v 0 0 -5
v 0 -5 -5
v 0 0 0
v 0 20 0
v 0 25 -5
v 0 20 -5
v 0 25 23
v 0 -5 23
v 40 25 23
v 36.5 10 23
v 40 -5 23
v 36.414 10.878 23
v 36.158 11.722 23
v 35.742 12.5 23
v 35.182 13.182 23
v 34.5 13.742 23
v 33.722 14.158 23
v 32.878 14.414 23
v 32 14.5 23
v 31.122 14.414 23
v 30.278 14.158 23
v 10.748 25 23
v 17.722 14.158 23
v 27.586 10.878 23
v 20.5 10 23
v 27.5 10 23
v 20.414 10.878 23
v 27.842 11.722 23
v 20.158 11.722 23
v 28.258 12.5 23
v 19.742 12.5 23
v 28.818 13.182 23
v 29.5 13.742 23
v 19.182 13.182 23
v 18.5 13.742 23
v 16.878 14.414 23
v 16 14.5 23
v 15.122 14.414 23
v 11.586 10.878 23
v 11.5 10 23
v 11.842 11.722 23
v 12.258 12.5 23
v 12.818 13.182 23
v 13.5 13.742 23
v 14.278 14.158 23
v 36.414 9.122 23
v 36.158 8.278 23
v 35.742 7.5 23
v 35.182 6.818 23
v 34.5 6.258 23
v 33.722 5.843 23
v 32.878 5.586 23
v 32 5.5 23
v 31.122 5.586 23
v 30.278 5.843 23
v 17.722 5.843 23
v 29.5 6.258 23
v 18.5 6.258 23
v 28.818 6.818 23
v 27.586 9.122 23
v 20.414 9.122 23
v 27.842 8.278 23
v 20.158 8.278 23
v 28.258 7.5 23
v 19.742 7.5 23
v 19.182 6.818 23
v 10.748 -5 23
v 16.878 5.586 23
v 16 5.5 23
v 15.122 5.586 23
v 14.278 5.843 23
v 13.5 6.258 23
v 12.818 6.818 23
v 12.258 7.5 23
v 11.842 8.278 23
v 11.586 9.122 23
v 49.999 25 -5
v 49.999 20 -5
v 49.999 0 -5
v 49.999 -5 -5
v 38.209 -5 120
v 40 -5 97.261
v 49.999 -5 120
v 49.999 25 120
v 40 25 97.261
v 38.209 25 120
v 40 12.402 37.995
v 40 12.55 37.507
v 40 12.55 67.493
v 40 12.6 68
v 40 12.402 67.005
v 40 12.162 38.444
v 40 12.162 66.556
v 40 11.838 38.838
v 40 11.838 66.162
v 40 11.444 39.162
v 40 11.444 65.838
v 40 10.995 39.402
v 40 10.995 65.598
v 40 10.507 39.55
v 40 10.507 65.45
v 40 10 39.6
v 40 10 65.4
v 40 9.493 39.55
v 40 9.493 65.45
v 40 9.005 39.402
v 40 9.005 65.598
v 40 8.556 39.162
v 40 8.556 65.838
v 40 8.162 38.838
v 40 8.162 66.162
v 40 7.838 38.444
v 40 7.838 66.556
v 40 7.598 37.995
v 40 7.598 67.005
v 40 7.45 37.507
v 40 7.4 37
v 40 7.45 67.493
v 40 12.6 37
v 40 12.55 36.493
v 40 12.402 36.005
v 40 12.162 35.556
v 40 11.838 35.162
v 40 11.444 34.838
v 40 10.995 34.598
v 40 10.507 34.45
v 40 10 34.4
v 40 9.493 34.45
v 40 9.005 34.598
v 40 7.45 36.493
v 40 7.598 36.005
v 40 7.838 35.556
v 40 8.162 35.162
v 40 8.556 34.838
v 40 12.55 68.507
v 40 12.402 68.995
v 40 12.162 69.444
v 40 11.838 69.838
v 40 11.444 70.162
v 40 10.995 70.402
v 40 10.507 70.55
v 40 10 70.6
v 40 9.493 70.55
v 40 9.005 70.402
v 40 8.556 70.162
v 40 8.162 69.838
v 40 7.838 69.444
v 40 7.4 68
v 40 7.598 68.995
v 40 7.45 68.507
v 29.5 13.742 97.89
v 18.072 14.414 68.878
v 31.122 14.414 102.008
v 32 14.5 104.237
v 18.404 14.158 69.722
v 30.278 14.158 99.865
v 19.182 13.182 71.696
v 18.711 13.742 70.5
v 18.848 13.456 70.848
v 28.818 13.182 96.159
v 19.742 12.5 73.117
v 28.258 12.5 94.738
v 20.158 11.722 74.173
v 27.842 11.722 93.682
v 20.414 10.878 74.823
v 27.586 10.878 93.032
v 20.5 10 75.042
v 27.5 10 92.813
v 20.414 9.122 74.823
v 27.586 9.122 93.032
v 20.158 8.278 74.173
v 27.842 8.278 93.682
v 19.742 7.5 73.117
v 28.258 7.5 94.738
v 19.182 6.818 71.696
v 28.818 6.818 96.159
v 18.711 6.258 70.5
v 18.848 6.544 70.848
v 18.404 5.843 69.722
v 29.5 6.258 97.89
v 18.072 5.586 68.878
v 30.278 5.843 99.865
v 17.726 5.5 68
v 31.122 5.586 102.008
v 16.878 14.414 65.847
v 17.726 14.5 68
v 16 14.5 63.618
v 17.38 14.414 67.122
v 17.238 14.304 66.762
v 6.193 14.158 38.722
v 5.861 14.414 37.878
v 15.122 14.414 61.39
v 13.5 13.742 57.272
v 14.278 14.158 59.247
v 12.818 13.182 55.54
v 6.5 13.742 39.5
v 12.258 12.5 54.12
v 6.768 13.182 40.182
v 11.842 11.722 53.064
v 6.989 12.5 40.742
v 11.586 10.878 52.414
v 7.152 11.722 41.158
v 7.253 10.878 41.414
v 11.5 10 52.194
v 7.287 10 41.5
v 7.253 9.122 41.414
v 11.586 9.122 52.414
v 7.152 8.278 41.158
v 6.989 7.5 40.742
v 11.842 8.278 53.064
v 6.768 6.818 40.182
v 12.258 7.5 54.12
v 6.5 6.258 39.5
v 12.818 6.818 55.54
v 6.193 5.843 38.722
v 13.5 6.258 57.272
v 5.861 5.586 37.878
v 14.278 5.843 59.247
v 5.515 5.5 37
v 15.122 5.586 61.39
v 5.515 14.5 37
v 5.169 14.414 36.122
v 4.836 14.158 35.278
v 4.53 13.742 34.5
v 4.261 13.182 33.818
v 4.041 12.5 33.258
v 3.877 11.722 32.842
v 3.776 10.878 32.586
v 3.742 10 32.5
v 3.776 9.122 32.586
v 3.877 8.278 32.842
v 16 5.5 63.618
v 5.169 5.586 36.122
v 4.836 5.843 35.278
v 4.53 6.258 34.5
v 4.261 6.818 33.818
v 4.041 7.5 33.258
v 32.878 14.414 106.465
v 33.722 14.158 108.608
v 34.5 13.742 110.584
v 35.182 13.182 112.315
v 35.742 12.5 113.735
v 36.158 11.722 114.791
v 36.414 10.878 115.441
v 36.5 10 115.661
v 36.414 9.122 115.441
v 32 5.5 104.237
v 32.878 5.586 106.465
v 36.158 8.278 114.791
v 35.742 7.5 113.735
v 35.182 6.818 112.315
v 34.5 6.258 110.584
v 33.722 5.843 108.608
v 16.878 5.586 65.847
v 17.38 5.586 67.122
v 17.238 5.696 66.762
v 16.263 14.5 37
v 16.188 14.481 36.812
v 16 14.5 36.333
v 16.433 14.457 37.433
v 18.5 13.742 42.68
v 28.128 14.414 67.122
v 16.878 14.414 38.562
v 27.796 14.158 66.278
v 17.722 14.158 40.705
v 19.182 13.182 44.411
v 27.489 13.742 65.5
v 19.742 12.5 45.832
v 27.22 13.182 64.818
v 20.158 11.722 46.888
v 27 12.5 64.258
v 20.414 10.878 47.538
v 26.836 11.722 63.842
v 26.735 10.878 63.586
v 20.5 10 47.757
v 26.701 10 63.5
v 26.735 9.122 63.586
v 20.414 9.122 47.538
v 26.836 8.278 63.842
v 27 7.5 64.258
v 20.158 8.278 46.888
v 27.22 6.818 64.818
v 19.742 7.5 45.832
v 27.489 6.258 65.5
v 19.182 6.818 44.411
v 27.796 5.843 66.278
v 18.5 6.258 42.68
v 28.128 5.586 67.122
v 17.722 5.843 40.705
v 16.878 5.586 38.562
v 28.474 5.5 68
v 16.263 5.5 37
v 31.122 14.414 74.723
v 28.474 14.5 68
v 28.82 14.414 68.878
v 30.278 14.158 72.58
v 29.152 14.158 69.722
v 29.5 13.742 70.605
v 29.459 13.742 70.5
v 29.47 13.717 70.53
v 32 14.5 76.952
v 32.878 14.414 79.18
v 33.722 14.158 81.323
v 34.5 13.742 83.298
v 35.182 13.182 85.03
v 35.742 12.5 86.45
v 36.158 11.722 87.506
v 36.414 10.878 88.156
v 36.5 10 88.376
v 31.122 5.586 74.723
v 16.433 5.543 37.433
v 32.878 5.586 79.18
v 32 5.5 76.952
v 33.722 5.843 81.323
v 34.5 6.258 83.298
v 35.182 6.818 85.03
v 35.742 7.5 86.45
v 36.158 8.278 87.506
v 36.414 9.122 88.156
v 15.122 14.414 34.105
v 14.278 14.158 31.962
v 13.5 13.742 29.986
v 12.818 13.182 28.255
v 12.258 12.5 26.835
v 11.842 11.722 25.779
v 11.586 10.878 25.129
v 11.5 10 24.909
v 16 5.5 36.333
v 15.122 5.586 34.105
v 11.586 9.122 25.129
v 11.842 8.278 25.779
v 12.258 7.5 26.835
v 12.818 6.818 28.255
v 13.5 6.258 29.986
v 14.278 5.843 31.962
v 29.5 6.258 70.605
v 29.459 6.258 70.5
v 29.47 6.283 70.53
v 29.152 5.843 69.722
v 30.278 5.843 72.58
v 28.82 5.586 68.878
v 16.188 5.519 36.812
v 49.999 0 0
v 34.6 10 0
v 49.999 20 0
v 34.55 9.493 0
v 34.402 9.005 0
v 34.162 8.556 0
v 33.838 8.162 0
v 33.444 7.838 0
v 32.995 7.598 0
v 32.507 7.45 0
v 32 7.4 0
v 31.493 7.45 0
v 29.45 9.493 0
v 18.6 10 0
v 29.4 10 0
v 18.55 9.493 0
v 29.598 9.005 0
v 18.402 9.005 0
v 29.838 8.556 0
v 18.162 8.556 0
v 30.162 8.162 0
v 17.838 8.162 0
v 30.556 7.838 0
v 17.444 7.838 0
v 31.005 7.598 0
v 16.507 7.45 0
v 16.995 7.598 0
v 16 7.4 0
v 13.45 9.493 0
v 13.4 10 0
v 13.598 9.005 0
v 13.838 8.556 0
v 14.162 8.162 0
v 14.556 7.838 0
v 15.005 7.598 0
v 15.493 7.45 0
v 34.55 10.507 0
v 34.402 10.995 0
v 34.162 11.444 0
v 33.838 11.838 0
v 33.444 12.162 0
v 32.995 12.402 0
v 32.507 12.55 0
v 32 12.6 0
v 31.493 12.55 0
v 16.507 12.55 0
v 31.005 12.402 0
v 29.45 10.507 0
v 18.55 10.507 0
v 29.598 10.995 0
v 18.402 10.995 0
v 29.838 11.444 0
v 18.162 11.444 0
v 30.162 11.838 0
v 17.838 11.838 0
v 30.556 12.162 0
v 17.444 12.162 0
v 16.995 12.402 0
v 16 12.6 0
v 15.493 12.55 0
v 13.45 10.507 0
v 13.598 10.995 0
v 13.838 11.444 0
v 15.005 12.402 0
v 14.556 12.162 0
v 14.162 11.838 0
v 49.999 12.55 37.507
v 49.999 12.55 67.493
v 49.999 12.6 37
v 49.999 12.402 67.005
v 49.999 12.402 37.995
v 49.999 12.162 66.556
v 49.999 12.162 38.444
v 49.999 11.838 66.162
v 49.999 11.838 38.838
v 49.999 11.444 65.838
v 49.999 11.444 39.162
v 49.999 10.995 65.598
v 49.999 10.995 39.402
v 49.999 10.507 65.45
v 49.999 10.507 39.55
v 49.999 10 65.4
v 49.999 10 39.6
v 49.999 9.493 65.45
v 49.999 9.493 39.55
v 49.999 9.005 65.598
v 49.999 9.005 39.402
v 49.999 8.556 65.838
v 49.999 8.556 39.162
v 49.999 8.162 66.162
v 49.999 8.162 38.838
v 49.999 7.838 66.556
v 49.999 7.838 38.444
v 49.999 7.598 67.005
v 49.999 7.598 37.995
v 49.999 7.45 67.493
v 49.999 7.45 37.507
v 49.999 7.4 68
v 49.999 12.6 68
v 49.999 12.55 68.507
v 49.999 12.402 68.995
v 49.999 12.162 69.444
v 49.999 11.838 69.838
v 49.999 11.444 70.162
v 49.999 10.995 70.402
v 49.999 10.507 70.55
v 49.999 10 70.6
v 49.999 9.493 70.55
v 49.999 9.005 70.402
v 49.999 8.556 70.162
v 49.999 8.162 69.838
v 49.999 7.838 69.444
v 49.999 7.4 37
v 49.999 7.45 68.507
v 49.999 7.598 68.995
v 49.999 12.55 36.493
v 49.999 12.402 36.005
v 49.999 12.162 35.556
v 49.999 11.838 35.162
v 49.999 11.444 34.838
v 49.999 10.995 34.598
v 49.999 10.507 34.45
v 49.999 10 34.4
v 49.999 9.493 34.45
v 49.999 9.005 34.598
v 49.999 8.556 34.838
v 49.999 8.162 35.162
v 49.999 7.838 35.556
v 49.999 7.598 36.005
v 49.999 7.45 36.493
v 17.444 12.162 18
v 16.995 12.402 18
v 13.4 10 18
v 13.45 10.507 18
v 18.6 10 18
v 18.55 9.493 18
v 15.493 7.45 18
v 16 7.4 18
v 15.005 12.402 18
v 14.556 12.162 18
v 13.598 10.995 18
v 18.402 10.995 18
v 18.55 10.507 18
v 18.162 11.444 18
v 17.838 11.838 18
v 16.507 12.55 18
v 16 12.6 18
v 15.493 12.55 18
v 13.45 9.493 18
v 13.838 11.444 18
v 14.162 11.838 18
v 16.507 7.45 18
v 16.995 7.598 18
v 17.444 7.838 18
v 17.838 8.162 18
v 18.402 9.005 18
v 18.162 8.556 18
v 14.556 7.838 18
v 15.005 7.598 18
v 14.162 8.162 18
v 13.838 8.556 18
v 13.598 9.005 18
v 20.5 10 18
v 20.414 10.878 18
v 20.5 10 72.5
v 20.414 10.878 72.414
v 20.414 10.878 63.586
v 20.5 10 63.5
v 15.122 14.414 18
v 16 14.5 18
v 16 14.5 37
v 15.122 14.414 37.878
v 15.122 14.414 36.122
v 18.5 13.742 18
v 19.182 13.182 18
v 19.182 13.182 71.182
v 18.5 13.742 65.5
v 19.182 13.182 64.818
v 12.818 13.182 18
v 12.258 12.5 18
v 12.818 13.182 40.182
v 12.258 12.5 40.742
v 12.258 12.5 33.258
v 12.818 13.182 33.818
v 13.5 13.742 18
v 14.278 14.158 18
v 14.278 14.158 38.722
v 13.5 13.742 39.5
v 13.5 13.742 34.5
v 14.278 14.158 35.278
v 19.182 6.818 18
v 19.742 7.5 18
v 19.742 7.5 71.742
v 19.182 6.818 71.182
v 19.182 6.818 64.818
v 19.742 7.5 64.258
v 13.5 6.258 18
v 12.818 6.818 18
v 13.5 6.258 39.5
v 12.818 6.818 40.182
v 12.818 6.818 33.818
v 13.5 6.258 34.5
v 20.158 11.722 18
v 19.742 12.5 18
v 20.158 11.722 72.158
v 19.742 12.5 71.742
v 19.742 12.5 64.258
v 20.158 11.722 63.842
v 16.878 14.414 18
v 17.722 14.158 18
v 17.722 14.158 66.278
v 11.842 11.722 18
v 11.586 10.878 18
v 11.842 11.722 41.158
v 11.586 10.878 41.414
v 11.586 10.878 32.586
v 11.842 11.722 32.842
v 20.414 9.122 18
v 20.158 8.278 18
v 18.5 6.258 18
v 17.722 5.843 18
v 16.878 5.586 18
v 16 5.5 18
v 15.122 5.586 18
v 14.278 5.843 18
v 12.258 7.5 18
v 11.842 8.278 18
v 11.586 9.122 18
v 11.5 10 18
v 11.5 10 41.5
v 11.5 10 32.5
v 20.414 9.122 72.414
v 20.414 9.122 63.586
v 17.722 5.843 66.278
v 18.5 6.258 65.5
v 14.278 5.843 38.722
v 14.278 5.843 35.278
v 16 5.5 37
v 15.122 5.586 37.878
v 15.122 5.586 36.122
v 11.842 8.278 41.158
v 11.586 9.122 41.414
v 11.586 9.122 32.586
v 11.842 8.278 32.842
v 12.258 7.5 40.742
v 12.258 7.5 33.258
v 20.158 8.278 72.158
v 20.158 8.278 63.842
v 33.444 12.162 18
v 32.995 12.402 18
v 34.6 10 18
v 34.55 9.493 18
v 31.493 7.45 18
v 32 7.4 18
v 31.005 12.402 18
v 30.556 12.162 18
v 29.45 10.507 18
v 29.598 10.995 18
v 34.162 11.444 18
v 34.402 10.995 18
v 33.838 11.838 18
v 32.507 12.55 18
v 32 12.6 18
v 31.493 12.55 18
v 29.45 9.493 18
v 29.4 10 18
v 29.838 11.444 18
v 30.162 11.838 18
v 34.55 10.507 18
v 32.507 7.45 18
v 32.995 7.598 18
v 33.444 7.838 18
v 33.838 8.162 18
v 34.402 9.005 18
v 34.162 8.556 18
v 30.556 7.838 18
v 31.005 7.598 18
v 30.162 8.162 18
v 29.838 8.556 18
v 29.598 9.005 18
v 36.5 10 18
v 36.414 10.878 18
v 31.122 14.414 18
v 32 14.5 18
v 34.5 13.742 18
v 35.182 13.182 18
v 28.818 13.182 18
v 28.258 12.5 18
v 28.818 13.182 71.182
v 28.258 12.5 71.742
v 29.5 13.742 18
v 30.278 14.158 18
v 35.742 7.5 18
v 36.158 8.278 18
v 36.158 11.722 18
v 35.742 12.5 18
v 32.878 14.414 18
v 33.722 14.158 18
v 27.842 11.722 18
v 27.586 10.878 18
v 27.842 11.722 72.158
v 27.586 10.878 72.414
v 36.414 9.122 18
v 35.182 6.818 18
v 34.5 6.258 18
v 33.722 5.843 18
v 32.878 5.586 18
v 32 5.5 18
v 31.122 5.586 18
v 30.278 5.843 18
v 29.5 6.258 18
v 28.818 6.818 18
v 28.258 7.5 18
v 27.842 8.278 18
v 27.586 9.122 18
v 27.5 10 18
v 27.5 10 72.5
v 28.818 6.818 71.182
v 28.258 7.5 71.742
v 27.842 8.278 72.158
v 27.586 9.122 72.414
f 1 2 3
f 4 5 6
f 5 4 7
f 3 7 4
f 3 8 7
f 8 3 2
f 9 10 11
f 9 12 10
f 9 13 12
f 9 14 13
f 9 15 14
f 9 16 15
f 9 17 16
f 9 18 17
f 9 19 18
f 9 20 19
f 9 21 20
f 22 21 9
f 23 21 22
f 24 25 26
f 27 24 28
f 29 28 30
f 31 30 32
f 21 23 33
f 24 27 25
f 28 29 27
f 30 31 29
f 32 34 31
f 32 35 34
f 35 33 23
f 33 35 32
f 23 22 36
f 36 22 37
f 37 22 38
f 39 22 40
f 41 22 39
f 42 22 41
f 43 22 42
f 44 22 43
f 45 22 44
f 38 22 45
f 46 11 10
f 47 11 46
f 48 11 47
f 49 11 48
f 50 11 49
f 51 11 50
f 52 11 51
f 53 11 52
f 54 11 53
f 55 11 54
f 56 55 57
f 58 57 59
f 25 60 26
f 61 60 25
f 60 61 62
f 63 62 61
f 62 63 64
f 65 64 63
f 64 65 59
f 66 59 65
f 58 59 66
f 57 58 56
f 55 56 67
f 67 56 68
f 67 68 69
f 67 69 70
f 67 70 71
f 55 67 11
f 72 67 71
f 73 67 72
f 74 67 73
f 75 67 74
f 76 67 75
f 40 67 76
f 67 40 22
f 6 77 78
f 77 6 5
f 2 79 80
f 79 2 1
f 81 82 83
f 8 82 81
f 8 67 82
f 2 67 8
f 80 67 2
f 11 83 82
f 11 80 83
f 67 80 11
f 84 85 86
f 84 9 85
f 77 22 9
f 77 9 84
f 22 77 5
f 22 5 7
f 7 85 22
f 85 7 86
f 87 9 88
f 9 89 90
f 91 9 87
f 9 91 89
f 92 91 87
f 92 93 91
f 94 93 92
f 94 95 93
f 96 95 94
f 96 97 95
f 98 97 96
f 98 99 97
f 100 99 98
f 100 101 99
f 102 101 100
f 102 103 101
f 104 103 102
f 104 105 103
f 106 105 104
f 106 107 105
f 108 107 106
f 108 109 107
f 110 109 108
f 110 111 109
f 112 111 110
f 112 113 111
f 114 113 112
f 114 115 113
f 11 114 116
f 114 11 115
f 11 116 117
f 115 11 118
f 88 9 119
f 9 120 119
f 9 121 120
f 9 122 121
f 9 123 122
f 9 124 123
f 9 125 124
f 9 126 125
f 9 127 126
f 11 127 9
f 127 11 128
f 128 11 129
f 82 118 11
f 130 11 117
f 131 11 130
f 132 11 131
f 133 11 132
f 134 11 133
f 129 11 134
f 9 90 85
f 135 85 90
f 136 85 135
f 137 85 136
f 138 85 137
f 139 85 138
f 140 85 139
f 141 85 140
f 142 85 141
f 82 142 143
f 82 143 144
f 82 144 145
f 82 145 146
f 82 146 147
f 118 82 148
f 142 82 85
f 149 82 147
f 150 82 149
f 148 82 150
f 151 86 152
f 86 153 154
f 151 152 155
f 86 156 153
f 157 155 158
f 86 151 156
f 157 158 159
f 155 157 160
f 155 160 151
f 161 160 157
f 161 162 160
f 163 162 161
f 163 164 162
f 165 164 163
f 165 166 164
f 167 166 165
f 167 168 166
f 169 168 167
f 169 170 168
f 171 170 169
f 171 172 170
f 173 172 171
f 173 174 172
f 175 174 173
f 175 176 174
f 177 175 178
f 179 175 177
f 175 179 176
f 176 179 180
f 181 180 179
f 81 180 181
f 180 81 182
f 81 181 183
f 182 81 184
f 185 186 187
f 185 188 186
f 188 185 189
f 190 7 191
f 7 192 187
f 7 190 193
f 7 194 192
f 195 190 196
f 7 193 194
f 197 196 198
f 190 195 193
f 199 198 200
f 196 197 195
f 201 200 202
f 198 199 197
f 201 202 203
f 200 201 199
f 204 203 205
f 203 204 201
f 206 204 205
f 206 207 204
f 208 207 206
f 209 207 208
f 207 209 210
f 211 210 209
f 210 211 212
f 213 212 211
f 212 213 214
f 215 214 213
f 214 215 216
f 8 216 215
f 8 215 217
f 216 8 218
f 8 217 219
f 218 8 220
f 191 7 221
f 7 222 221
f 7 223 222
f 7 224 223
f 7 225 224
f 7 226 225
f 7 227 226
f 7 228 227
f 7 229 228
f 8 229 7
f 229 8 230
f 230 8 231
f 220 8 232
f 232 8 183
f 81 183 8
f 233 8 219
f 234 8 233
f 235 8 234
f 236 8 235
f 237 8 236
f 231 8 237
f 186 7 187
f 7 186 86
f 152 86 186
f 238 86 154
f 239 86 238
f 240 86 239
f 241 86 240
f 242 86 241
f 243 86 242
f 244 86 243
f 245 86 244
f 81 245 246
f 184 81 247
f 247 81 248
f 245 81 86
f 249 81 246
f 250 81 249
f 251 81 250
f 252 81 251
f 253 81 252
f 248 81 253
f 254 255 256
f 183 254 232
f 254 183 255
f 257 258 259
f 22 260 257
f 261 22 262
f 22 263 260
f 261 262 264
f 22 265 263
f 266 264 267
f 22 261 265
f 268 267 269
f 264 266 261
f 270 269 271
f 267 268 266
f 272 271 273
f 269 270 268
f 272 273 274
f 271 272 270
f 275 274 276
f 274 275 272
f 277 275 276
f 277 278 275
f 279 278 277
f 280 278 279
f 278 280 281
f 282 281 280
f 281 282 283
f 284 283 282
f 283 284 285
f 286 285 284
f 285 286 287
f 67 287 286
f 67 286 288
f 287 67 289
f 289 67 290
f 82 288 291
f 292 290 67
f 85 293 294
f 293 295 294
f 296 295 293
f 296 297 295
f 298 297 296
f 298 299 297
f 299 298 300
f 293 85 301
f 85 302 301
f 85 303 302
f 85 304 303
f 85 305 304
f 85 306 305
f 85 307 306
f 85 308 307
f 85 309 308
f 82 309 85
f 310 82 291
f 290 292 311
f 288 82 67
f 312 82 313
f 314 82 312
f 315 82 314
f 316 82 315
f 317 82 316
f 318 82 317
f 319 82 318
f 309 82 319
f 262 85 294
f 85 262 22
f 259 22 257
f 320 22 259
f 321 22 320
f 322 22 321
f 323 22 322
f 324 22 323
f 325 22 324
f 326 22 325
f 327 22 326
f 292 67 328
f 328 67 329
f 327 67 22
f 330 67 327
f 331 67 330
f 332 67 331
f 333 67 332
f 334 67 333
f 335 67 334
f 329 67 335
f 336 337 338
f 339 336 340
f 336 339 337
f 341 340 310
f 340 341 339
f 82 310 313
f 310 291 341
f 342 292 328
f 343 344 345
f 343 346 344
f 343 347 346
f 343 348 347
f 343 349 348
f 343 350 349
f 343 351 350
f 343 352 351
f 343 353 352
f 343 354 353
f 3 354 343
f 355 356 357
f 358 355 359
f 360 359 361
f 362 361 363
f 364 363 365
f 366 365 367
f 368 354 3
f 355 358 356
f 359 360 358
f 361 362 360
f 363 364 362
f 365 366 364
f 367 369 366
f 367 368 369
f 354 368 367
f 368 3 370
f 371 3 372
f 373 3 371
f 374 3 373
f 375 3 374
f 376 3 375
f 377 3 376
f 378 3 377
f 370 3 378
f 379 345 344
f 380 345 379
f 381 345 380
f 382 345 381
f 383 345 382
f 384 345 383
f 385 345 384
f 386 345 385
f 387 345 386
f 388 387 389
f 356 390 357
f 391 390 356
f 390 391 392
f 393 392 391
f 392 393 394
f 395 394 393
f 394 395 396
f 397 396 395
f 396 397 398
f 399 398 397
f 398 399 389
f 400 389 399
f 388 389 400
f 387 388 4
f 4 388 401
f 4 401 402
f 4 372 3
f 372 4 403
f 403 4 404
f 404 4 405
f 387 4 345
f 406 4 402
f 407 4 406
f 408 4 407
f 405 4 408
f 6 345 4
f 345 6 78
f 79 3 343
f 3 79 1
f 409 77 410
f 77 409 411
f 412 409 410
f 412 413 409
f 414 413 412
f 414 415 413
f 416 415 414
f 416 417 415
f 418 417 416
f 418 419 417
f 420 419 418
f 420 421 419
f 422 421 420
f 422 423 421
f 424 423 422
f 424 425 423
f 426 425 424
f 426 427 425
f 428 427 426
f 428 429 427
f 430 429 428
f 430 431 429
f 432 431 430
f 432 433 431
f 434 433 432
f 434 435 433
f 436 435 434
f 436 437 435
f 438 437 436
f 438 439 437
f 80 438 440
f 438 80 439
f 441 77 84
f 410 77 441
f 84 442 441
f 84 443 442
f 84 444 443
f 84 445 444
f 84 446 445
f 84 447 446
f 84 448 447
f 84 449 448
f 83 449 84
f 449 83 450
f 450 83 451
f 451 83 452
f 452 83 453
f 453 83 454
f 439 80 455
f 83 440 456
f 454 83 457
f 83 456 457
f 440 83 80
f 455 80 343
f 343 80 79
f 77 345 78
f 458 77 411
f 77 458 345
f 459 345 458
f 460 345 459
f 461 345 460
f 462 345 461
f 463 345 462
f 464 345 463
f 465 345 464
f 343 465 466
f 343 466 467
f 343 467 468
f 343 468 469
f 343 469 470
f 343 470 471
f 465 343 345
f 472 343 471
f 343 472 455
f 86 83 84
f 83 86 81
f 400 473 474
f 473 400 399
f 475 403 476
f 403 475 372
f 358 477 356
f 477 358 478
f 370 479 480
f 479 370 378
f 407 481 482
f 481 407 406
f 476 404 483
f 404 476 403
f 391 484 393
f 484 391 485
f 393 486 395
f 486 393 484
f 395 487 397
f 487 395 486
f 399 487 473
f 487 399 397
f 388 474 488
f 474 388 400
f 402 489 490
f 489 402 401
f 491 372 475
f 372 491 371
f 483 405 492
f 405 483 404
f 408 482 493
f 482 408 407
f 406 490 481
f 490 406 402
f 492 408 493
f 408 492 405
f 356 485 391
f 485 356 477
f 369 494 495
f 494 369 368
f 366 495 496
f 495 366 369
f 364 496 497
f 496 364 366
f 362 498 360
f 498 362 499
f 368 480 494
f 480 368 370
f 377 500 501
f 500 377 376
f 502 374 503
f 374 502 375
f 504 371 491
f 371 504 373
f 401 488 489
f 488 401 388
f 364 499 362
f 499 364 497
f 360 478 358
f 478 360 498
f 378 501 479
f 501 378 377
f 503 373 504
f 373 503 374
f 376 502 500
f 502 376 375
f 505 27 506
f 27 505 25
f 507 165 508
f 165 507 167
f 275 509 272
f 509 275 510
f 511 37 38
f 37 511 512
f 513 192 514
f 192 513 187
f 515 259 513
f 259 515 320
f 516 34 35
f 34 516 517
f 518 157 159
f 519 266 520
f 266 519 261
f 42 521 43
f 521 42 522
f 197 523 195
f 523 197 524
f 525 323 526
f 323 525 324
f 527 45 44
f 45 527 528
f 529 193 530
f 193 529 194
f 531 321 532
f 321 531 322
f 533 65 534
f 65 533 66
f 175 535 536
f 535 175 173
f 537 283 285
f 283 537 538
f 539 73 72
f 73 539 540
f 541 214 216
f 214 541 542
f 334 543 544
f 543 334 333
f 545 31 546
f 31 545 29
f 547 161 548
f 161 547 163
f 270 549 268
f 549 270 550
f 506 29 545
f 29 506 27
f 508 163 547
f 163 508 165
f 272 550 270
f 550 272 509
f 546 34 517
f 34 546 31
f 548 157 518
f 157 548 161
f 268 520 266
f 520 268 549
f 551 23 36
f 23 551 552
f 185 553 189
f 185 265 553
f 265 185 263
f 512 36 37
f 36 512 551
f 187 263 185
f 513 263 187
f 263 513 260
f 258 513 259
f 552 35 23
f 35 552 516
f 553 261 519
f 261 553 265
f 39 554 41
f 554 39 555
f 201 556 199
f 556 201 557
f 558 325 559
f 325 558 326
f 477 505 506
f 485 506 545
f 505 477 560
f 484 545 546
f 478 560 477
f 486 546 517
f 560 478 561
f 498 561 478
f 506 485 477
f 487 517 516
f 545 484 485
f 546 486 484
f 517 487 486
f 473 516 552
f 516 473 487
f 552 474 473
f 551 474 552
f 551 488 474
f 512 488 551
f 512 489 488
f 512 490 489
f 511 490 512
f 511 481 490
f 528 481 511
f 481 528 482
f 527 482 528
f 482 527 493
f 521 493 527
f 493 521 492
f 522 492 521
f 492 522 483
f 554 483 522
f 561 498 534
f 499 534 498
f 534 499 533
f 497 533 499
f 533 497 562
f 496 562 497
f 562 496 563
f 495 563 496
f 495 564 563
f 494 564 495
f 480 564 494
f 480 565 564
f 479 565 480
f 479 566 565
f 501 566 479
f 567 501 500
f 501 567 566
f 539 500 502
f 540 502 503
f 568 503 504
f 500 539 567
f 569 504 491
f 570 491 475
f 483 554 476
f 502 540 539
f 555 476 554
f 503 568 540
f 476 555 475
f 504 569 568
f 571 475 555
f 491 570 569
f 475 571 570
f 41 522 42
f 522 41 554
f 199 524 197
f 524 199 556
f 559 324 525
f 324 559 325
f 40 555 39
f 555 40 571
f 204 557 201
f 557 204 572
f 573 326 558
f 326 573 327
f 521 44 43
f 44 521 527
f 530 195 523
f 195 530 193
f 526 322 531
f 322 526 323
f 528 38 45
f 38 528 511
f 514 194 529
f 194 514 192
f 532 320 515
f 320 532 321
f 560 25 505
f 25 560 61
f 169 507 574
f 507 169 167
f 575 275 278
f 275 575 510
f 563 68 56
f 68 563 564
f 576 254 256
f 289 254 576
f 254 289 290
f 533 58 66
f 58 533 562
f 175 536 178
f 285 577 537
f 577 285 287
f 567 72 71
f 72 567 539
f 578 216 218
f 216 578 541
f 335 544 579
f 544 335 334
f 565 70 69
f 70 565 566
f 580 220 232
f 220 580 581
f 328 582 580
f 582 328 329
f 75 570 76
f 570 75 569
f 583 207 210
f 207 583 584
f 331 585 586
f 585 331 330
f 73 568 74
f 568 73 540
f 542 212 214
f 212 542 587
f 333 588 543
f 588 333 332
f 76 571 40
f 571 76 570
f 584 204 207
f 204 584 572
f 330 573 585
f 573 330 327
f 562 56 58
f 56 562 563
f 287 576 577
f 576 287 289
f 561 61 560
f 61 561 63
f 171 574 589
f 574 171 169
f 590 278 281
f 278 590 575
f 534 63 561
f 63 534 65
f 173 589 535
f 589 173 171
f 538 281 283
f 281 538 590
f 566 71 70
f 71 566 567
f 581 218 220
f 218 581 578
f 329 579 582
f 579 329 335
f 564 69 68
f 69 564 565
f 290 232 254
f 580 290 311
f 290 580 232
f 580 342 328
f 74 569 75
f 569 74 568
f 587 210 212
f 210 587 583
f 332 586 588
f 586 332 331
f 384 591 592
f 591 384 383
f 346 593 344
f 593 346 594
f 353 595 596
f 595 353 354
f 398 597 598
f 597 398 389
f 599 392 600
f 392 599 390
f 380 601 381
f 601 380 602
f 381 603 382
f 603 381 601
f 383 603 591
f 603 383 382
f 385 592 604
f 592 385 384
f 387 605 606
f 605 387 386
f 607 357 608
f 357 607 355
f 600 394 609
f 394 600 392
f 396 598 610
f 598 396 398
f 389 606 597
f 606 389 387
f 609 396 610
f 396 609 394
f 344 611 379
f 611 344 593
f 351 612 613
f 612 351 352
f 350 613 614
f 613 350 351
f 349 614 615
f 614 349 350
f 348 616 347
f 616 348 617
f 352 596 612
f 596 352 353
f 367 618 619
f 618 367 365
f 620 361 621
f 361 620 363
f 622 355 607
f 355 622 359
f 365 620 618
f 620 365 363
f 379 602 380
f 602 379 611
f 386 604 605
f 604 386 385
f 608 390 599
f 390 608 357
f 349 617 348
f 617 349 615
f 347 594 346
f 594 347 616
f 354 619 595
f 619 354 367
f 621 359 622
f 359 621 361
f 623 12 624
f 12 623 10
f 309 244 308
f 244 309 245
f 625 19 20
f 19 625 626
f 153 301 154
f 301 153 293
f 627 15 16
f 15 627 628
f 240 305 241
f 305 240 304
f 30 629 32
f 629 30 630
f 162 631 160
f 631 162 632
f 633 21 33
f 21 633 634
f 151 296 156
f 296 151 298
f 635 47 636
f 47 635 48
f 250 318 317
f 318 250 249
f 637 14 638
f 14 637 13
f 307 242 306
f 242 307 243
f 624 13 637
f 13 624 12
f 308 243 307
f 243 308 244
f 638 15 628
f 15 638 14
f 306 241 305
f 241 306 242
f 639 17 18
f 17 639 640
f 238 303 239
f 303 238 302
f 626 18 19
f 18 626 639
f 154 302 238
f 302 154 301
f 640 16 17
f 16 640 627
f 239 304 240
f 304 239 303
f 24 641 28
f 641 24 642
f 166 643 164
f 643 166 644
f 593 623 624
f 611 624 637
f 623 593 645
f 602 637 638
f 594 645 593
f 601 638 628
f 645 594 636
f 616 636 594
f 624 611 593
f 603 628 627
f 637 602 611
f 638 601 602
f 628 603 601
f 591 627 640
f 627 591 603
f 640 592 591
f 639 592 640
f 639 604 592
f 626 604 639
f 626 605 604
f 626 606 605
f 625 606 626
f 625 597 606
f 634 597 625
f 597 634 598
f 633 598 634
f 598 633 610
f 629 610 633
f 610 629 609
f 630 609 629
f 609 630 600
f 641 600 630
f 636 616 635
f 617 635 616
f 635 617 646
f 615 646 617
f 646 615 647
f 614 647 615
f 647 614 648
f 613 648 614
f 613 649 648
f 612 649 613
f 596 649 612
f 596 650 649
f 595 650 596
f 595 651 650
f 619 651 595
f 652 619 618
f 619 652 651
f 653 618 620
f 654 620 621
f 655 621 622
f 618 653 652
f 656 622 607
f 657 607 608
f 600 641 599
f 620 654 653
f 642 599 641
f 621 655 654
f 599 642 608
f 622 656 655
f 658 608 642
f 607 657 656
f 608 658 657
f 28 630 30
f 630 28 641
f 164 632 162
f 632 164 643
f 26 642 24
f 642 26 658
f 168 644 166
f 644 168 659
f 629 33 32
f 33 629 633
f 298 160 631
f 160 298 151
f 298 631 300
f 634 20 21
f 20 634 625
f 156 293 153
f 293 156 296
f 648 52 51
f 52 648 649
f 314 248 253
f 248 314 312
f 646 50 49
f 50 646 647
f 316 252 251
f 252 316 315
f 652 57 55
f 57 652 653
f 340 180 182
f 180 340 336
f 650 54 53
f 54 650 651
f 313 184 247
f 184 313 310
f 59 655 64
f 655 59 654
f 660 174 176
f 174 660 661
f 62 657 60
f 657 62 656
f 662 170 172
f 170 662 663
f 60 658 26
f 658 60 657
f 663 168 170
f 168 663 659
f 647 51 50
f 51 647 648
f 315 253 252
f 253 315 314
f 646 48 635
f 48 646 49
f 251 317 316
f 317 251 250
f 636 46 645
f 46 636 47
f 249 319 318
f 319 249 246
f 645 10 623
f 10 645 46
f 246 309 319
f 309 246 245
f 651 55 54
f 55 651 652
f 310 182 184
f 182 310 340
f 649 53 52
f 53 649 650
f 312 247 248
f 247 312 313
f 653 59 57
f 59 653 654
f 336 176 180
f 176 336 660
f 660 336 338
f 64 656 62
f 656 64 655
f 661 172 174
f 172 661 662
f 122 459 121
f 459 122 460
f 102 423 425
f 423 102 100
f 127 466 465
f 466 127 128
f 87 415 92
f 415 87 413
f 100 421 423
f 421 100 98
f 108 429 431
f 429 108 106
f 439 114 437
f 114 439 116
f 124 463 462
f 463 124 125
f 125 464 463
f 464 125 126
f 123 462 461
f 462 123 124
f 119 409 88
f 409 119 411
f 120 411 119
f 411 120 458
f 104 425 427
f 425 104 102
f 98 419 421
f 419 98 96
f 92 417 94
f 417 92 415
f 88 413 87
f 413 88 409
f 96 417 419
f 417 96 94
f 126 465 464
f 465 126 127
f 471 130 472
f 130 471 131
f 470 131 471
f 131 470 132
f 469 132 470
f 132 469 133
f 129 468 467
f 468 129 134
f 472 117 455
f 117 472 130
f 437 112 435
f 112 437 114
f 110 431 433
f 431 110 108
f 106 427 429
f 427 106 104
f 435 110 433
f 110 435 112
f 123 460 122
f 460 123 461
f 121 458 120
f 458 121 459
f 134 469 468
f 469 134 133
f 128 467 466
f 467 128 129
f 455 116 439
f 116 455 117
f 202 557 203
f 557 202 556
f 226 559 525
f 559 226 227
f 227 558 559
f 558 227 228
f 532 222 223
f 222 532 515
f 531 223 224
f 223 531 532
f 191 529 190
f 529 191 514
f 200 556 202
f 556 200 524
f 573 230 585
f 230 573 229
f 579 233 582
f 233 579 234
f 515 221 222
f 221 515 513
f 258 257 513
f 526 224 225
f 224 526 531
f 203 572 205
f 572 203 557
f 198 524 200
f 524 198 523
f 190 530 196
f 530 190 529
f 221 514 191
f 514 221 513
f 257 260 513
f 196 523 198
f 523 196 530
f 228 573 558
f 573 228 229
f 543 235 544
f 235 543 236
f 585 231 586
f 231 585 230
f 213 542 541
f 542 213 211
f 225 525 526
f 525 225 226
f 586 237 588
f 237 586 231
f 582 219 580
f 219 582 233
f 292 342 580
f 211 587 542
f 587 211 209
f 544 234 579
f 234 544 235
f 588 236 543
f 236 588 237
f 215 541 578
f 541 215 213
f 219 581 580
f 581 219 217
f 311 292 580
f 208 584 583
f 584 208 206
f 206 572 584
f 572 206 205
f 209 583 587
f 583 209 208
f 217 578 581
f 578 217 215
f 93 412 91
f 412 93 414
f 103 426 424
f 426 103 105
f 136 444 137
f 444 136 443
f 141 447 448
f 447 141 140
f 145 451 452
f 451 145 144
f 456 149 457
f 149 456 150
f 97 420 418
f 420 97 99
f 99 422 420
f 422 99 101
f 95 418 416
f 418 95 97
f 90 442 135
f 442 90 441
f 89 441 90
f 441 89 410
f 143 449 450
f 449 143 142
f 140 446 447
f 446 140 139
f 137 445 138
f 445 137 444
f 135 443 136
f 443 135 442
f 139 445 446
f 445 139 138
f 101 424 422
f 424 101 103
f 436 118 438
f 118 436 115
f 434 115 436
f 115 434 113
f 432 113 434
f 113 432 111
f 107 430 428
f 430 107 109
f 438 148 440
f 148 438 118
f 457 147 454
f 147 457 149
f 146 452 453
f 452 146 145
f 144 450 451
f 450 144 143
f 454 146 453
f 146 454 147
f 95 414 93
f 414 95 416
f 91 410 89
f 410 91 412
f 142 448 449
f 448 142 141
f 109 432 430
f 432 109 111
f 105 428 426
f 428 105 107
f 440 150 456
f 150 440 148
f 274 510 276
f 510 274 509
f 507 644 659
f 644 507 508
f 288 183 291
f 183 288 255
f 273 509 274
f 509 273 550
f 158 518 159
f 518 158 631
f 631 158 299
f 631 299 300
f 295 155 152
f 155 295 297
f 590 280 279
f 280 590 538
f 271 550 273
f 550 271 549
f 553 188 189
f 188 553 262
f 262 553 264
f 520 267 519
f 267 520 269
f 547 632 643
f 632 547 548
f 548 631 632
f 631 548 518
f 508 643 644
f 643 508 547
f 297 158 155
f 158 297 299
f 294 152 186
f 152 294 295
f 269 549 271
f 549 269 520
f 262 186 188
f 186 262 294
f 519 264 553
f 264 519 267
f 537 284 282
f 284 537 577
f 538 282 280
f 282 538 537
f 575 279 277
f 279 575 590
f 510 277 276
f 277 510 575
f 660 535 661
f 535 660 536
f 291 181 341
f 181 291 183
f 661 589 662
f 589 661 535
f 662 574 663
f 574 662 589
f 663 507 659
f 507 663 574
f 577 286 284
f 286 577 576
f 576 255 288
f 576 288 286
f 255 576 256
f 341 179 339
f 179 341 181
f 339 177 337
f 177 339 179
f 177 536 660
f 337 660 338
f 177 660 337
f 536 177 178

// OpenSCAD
//difference() {
//cube([50,20,100]);
//    rotate([0,atan(50/100),0])translate([-50,-1,0])cube([50,22,200]);
//    translate([11,5,22])cube([10,10,50]);
//    translate([27,5,54])cube([10,10,50]);
//    translate([32,10,-1])cylinder(d=5,h=100);
//    translate([16,10,-1])cylinder(d=5,h=100);
//    translate([0,10,37])rotate([0,90,0])cylinder(d=5,h=100);
//    translate([0,10,68])rotate([0,90,0])cylinder(d=5,h=100);
//}


$fn=32;
//// M5x25, 18mm to t-slot bolt.
//difference(){
//    union(){
//        cube([50,20,23]);
//        translate([40,0,23])cube([10,20,100]);
//        translate([0,0,23])rotate([0,21.5,0])cube([10,20,150]);
//    }
//    translate([16,10,-1])cylinder(d=5.2,h=100);
//    translate([16,10,18])cylinder(d=9,h=100);
//    translate([32,10,-1])cylinder(d=5.2,h=100);
//    translate([32,10,18])cylinder(d=9,h=100);
//    translate([0,10,37])rotate([0,90,0])cylinder(d=5.2,h=100);
//    translate([0,10,37])rotate([0,90,0])cylinder(d=9,h=25);
//    translate([0,10,68])rotate([0,90,0])cylinder(d=5.2,h=100);
//    translate([10,10,68])rotate([0,90,0])cylinder(d=9,h=25);
//    translate([49.999,-5,-5])cube([100,50,200]);
//};

difference(){
    union(){
        translate([0,-5,-5])cube([50,30,28]);
        translate([40,-5,23])cube([10,30,100]);
        translate([0,-5,23])rotate([0,21.5,0])cube([10,30,150]);
    };
    translate([-5,0,-20])cube([60,20,20]);
    translate([49.999,-10,-5])cube([100,50,200]);
    translate([0,-10,120])cube([60,40,50]);
    translate([16,10,-1])cylinder(d=5.2,h=100);
    translate([16,10,18])cylinder(d=9,h=100);
    translate([32,10,-1])cylinder(d=5.2,h=100);
    translate([32,10,18])cylinder(d=9,h=100);
    translate([0,10,37])rotate([0,90,0])cylinder(d=5.2,h=100);
    translate([0,10,37])rotate([0,90,0])cylinder(d=9,h=25);
    translate([0,10,68])rotate([0,90,0])cylinder(d=5.2,h=100);
    translate([10,10,68])rotate([0,90,0])cylinder(d=9,h=25);

};
